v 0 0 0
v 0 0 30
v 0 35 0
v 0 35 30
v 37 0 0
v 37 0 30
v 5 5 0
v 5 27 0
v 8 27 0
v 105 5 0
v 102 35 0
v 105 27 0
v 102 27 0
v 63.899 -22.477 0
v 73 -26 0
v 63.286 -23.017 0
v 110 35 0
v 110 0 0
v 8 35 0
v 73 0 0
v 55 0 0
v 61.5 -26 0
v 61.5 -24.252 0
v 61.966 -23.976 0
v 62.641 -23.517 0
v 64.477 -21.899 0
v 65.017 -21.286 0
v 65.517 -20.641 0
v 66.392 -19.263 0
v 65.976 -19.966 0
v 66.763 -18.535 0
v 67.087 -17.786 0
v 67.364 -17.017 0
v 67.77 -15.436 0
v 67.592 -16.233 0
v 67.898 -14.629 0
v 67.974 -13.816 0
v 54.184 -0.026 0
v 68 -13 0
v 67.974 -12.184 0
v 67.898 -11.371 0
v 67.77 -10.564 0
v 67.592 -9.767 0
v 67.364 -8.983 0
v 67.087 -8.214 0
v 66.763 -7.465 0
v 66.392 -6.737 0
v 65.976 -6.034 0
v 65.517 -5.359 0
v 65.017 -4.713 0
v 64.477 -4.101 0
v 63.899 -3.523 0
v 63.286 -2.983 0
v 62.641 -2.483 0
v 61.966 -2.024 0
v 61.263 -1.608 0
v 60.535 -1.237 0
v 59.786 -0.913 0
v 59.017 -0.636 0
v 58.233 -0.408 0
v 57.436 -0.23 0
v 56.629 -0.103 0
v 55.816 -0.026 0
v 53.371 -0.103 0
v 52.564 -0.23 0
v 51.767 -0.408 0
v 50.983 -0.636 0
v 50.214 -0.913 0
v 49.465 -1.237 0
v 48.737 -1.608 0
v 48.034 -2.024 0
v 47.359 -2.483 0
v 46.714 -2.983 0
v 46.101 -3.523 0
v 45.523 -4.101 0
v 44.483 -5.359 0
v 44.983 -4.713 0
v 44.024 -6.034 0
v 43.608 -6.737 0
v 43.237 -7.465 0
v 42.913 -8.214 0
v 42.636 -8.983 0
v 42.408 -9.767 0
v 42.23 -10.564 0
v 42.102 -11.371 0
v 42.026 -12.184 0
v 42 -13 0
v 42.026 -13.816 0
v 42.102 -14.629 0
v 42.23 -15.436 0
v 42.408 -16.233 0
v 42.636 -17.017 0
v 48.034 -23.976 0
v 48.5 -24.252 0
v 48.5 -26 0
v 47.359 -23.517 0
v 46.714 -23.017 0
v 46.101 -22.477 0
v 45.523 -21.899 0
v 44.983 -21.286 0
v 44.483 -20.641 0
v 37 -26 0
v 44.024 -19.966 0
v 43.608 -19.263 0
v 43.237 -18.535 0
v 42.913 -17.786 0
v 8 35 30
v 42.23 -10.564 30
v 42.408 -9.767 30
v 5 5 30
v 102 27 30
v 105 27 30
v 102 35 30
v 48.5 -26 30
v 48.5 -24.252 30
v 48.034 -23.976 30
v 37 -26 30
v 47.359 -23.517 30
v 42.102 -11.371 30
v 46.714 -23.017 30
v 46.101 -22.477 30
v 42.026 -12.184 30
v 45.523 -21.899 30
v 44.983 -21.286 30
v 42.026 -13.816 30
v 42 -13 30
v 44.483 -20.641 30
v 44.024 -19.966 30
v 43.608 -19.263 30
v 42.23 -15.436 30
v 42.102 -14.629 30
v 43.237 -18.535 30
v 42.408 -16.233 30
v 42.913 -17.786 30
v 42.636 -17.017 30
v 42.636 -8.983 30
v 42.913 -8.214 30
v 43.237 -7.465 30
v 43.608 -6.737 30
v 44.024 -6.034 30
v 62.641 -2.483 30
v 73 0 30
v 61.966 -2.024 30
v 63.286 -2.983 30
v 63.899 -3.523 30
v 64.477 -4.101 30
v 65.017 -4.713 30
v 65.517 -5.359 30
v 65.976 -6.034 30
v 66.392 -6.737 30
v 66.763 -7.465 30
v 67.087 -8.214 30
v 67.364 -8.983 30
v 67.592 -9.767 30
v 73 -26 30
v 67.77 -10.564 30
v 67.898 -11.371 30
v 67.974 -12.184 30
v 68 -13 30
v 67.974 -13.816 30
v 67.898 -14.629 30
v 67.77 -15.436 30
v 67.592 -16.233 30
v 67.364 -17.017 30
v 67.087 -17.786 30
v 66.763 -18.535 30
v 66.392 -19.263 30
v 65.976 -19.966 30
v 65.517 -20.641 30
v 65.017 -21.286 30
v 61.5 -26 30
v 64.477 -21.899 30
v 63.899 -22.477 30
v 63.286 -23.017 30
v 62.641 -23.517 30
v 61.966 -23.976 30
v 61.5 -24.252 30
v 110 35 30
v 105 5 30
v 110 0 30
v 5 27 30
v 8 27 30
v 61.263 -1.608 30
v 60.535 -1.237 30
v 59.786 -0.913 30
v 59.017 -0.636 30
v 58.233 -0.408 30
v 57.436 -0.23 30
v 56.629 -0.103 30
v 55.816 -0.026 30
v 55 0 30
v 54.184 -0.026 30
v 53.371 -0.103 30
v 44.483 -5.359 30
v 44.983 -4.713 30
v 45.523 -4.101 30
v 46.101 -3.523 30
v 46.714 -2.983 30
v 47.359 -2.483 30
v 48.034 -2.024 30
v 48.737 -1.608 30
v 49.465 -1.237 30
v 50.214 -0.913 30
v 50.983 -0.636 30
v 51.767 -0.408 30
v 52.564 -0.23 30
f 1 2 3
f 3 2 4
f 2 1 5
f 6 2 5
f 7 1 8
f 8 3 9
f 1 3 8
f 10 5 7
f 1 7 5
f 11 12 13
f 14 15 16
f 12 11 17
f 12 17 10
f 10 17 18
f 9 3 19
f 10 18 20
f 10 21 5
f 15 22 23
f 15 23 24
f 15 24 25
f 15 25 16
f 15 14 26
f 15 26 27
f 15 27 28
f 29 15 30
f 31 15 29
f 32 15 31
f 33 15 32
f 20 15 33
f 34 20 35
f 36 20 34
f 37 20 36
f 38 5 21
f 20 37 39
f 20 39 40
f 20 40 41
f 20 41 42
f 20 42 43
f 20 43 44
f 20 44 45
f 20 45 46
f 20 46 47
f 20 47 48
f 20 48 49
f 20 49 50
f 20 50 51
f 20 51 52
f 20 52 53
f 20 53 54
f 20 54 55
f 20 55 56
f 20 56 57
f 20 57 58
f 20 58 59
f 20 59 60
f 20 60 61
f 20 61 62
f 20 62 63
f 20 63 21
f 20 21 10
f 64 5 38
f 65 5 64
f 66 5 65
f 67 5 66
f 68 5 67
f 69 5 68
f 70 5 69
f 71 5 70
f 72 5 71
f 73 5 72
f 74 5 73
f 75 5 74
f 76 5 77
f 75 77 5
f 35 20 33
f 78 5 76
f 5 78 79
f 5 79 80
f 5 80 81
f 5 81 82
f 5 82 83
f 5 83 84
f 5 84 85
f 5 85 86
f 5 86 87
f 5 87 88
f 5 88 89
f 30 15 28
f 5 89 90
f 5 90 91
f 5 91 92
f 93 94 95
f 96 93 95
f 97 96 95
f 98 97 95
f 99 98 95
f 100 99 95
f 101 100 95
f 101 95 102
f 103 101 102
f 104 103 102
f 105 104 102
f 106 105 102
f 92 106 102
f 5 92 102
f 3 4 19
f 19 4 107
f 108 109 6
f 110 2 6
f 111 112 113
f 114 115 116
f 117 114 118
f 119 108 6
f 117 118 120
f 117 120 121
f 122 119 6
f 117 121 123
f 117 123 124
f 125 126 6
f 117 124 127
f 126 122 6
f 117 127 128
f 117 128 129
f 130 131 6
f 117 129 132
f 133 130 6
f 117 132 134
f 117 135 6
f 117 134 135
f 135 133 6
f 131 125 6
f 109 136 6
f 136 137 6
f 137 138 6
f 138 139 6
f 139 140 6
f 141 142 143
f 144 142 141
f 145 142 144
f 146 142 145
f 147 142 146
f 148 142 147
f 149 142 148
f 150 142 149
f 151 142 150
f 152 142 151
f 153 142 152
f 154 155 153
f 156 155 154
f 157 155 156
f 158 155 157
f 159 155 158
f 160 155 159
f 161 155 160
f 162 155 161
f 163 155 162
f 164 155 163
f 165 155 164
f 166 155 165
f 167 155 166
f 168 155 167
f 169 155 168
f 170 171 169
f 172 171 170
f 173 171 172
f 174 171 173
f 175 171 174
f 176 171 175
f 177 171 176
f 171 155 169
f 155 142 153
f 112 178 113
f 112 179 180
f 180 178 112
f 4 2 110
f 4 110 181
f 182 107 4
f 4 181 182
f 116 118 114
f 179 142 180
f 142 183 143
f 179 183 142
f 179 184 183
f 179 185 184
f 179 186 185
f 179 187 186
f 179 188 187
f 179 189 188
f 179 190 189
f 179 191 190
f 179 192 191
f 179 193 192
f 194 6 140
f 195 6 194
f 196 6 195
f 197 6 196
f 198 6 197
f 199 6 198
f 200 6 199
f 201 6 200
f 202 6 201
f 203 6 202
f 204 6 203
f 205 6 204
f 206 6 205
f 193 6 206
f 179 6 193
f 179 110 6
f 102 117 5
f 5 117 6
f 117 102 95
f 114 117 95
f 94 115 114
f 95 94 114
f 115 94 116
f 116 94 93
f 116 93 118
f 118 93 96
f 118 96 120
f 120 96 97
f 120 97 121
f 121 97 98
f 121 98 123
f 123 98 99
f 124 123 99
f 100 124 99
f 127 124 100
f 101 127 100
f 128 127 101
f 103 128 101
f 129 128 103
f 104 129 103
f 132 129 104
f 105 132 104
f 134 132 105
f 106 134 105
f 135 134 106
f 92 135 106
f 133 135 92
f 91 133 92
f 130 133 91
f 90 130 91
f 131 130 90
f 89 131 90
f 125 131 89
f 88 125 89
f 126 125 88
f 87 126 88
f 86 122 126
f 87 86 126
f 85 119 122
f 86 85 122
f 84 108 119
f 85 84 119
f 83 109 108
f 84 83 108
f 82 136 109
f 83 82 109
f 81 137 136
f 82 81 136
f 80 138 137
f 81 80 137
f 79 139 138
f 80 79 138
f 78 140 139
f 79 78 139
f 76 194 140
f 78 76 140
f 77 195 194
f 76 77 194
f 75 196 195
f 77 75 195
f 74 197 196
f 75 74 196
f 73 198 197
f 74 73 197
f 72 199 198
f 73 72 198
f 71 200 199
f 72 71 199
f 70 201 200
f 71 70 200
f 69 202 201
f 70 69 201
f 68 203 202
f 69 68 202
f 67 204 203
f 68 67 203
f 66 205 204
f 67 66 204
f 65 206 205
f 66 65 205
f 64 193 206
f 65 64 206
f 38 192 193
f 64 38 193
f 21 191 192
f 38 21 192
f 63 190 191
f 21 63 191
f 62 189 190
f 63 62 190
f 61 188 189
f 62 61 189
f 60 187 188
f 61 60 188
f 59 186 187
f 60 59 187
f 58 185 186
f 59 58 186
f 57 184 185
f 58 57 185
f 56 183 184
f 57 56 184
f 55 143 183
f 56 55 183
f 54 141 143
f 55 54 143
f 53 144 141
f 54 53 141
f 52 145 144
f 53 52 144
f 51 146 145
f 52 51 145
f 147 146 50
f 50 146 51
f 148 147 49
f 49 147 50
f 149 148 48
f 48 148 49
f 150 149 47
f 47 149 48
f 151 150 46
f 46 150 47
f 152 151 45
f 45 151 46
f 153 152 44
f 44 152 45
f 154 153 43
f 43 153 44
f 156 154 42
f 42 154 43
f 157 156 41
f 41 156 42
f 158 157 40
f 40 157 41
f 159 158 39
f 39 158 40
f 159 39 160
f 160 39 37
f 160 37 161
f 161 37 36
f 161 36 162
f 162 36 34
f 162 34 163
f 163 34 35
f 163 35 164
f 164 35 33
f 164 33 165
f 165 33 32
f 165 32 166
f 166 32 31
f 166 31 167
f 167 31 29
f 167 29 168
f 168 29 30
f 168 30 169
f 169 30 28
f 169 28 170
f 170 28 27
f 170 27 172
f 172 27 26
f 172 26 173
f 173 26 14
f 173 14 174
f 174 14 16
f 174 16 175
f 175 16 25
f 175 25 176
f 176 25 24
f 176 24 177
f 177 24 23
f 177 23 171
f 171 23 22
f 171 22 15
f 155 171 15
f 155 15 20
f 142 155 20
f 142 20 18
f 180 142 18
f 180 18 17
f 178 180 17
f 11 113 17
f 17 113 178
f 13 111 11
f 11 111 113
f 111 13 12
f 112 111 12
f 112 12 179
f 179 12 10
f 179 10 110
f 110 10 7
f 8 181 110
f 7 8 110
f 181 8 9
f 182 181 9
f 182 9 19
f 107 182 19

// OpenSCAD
// Pump clamp parameters
length         = 110;
width          = 35;
depth          = 30;
thickness      = 5;
grip_width     = 8;
grip_thickness = 3;

// Hose clamp parameters
diameter       = 26;
precision      = 100;

module avonpumpclip() {

    difference() {

        // Things that exist
        union() {
            // Body of pump clamp
            cube( size = [ length, width, depth ] );

            // Body of hose clamp
            translate( v = [ length/2 - diameter/2 - thickness, -diameter, 0] ) {
                cube( size = [ diameter + (thickness * 2), diameter, depth ] );
            }
        }

        // Things to be cut out
        union() {
            // Cutaway inside of pump clamp
            translate( v = [thickness, thickness, -0.1] ) { 
                cube( size = [ length - (thickness * 2), width - thickness - grip_width, depth +0.2 ] );
            }

            // Cutaway between pump grips
            translate( v = [thickness + grip_thickness, width - grip_width - 0.1, -0.1] ) { 
                cube( size = [ length - (thickness * 2) - (grip_thickness * 2), grip_width + 0.2, depth +0.2 ] );
            }

            // Cutaway hose
            translate( v = [ length/2, -diameter/2, -0.1] ) {
                cylinder( r = diameter/2, h = depth +0.2, $fn = precision );
            }

            // Cutaway entrance for hose
            translate( v = [ length/2 - diameter/4, -diameter -0.1, -0.1] ) {
                cube( size = [ diameter/2, diameter/2, depth +0.2 ] );
            }

        }
    }

}

avonpumpclip();
